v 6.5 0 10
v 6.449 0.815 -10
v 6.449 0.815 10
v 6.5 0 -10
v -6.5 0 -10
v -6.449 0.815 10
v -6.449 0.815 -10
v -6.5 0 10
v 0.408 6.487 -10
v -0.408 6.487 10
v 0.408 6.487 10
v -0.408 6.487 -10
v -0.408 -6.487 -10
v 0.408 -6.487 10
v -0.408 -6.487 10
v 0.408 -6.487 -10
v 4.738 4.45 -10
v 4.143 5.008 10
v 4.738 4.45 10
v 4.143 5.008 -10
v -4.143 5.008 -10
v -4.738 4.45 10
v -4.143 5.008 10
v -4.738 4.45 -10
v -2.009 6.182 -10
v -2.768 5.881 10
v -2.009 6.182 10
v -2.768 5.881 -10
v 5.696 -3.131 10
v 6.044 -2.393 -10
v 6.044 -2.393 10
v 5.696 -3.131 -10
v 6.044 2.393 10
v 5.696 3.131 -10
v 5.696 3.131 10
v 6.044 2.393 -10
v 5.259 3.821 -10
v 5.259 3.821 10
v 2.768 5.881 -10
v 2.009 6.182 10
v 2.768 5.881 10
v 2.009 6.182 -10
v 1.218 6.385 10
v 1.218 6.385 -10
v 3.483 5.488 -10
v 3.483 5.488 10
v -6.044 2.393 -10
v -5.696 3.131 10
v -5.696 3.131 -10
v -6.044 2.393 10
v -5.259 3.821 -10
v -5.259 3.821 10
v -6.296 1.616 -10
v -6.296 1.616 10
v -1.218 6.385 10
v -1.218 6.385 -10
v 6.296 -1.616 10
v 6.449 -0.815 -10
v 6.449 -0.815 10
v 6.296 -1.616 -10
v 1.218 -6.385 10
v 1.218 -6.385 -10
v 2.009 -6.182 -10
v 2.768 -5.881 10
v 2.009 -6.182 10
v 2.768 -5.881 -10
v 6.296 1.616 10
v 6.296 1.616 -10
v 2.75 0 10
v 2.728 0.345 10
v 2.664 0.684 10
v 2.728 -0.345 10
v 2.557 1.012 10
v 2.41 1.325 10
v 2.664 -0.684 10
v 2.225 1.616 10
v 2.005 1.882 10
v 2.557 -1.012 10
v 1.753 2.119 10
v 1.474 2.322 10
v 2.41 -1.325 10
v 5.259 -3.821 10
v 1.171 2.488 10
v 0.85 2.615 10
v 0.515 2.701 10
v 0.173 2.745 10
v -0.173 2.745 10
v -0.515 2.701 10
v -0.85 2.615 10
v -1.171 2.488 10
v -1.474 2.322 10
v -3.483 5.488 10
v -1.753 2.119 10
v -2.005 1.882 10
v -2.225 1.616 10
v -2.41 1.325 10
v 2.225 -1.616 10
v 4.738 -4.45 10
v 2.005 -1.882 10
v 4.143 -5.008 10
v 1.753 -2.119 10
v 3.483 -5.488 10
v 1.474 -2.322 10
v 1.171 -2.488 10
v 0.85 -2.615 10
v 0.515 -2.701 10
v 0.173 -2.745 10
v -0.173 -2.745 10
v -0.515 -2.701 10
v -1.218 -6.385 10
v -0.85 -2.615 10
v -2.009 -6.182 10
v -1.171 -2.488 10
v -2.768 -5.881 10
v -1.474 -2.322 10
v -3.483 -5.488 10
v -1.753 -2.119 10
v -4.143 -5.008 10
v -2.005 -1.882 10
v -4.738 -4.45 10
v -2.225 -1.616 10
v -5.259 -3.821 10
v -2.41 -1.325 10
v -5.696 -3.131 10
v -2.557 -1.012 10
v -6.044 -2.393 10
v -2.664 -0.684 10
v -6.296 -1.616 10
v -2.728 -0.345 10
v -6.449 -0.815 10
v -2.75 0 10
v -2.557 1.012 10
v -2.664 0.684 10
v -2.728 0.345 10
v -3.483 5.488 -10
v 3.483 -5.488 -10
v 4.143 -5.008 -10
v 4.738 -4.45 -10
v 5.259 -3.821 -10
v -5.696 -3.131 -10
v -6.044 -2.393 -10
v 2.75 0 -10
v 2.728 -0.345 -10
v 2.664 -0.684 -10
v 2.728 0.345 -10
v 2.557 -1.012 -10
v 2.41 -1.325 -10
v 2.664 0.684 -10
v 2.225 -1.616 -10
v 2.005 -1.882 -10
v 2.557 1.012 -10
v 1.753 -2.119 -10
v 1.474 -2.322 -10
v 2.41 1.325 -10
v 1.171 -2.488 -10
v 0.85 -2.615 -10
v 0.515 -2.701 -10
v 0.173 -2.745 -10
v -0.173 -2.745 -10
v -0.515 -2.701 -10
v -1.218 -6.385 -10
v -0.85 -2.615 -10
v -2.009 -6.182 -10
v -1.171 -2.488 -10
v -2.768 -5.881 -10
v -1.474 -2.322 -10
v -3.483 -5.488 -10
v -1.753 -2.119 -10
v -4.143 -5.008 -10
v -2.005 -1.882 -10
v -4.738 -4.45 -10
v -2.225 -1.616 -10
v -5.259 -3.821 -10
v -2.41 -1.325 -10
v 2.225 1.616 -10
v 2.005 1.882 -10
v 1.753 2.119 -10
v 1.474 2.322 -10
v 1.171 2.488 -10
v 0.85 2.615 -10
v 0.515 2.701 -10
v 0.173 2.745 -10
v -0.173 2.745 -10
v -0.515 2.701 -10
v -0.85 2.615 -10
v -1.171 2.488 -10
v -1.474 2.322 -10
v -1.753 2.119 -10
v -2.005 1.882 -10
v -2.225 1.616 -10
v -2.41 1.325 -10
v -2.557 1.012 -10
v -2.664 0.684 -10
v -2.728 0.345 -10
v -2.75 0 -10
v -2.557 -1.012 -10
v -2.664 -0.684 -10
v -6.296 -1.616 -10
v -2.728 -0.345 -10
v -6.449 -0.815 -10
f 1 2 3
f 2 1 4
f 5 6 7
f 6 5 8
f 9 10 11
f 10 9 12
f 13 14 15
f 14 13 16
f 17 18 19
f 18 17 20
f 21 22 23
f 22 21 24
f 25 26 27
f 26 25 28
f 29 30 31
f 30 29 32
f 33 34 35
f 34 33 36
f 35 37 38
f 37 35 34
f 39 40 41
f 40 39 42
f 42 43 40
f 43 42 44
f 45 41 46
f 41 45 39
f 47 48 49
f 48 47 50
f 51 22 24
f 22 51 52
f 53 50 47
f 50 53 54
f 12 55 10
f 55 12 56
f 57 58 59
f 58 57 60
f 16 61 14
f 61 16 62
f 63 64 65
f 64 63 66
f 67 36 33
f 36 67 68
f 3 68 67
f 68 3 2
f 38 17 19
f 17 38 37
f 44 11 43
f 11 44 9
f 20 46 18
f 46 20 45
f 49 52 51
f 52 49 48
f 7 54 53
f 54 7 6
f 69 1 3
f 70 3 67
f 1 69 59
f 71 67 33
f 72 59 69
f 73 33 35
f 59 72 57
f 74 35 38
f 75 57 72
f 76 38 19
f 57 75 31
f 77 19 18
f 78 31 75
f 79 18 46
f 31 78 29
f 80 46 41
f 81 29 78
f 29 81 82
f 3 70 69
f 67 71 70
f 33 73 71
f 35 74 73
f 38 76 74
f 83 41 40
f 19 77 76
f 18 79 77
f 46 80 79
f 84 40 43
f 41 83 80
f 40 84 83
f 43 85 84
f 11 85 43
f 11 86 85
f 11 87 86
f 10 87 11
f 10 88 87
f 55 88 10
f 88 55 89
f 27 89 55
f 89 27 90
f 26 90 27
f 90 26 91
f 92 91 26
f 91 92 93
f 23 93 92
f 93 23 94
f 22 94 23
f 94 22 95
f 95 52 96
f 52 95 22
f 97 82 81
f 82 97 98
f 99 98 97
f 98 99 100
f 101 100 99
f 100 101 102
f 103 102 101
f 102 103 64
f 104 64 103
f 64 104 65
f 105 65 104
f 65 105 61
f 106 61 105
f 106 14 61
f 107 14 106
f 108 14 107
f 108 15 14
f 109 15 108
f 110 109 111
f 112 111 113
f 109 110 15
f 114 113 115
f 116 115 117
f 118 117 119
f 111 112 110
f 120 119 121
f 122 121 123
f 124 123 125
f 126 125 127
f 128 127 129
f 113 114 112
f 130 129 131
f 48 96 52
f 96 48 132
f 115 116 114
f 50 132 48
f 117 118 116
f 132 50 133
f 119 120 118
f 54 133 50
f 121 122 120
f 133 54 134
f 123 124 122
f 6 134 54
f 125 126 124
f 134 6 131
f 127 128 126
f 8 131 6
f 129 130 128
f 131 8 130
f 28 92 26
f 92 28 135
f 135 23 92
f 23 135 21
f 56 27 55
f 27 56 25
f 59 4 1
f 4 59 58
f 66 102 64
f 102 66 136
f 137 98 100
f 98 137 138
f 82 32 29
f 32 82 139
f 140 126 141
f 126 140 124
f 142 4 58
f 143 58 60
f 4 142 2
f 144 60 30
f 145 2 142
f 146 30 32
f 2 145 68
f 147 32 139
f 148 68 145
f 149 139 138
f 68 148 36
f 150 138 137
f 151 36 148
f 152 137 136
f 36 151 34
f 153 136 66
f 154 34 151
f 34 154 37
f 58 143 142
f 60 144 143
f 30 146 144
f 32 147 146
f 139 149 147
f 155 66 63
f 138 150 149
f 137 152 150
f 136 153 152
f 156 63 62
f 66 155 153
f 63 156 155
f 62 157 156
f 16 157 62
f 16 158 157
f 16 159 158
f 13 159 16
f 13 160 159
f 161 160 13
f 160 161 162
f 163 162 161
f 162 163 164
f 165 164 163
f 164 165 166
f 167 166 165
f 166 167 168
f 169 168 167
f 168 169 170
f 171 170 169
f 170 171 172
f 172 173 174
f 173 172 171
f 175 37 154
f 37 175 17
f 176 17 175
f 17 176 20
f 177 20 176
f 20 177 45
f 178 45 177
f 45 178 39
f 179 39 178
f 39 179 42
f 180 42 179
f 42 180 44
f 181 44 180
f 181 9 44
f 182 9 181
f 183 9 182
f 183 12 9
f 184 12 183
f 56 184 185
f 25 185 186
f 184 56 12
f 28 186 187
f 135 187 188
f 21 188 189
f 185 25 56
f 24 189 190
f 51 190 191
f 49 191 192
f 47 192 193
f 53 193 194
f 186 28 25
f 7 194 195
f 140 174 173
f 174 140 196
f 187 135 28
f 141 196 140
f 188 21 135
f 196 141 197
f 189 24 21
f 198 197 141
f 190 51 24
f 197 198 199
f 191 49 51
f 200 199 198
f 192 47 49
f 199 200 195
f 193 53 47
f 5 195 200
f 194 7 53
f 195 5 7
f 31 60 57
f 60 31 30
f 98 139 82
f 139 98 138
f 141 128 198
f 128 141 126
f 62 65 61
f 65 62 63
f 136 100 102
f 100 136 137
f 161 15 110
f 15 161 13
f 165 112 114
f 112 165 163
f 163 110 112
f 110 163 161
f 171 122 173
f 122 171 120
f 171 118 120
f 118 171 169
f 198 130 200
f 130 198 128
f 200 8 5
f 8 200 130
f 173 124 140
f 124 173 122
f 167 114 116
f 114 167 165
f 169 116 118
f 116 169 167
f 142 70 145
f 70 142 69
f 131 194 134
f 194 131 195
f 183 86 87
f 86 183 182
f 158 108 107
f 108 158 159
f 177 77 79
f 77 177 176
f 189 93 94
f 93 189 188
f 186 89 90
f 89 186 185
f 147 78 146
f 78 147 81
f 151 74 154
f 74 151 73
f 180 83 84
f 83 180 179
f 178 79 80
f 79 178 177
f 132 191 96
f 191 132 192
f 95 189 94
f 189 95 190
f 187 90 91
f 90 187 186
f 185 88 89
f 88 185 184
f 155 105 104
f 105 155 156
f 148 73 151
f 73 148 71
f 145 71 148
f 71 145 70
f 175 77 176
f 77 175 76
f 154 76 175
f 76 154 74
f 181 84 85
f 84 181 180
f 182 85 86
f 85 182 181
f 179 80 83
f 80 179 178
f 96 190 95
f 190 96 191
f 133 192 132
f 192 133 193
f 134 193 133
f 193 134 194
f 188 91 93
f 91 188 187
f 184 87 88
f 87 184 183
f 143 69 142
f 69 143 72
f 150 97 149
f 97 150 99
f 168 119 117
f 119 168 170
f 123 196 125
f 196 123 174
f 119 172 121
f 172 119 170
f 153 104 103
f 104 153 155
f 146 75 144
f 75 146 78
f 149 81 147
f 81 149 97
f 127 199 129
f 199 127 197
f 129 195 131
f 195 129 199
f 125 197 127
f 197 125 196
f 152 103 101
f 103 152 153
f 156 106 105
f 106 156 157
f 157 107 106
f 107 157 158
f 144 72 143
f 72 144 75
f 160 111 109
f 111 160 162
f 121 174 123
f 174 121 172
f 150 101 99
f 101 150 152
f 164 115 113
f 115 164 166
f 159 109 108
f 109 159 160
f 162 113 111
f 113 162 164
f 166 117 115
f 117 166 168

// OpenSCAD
$fn = 50;


difference() {
	union() {
		translate(v = [0, 0, -10.0000000000]) {
			cylinder(h = 20, r = 6.5000000000);
		}
	}
	union() {
		translate(v = [0, 0, -100.0000000000]) {
			cylinder(h = 200, r = 2.7500000000);
		}
	}
}
